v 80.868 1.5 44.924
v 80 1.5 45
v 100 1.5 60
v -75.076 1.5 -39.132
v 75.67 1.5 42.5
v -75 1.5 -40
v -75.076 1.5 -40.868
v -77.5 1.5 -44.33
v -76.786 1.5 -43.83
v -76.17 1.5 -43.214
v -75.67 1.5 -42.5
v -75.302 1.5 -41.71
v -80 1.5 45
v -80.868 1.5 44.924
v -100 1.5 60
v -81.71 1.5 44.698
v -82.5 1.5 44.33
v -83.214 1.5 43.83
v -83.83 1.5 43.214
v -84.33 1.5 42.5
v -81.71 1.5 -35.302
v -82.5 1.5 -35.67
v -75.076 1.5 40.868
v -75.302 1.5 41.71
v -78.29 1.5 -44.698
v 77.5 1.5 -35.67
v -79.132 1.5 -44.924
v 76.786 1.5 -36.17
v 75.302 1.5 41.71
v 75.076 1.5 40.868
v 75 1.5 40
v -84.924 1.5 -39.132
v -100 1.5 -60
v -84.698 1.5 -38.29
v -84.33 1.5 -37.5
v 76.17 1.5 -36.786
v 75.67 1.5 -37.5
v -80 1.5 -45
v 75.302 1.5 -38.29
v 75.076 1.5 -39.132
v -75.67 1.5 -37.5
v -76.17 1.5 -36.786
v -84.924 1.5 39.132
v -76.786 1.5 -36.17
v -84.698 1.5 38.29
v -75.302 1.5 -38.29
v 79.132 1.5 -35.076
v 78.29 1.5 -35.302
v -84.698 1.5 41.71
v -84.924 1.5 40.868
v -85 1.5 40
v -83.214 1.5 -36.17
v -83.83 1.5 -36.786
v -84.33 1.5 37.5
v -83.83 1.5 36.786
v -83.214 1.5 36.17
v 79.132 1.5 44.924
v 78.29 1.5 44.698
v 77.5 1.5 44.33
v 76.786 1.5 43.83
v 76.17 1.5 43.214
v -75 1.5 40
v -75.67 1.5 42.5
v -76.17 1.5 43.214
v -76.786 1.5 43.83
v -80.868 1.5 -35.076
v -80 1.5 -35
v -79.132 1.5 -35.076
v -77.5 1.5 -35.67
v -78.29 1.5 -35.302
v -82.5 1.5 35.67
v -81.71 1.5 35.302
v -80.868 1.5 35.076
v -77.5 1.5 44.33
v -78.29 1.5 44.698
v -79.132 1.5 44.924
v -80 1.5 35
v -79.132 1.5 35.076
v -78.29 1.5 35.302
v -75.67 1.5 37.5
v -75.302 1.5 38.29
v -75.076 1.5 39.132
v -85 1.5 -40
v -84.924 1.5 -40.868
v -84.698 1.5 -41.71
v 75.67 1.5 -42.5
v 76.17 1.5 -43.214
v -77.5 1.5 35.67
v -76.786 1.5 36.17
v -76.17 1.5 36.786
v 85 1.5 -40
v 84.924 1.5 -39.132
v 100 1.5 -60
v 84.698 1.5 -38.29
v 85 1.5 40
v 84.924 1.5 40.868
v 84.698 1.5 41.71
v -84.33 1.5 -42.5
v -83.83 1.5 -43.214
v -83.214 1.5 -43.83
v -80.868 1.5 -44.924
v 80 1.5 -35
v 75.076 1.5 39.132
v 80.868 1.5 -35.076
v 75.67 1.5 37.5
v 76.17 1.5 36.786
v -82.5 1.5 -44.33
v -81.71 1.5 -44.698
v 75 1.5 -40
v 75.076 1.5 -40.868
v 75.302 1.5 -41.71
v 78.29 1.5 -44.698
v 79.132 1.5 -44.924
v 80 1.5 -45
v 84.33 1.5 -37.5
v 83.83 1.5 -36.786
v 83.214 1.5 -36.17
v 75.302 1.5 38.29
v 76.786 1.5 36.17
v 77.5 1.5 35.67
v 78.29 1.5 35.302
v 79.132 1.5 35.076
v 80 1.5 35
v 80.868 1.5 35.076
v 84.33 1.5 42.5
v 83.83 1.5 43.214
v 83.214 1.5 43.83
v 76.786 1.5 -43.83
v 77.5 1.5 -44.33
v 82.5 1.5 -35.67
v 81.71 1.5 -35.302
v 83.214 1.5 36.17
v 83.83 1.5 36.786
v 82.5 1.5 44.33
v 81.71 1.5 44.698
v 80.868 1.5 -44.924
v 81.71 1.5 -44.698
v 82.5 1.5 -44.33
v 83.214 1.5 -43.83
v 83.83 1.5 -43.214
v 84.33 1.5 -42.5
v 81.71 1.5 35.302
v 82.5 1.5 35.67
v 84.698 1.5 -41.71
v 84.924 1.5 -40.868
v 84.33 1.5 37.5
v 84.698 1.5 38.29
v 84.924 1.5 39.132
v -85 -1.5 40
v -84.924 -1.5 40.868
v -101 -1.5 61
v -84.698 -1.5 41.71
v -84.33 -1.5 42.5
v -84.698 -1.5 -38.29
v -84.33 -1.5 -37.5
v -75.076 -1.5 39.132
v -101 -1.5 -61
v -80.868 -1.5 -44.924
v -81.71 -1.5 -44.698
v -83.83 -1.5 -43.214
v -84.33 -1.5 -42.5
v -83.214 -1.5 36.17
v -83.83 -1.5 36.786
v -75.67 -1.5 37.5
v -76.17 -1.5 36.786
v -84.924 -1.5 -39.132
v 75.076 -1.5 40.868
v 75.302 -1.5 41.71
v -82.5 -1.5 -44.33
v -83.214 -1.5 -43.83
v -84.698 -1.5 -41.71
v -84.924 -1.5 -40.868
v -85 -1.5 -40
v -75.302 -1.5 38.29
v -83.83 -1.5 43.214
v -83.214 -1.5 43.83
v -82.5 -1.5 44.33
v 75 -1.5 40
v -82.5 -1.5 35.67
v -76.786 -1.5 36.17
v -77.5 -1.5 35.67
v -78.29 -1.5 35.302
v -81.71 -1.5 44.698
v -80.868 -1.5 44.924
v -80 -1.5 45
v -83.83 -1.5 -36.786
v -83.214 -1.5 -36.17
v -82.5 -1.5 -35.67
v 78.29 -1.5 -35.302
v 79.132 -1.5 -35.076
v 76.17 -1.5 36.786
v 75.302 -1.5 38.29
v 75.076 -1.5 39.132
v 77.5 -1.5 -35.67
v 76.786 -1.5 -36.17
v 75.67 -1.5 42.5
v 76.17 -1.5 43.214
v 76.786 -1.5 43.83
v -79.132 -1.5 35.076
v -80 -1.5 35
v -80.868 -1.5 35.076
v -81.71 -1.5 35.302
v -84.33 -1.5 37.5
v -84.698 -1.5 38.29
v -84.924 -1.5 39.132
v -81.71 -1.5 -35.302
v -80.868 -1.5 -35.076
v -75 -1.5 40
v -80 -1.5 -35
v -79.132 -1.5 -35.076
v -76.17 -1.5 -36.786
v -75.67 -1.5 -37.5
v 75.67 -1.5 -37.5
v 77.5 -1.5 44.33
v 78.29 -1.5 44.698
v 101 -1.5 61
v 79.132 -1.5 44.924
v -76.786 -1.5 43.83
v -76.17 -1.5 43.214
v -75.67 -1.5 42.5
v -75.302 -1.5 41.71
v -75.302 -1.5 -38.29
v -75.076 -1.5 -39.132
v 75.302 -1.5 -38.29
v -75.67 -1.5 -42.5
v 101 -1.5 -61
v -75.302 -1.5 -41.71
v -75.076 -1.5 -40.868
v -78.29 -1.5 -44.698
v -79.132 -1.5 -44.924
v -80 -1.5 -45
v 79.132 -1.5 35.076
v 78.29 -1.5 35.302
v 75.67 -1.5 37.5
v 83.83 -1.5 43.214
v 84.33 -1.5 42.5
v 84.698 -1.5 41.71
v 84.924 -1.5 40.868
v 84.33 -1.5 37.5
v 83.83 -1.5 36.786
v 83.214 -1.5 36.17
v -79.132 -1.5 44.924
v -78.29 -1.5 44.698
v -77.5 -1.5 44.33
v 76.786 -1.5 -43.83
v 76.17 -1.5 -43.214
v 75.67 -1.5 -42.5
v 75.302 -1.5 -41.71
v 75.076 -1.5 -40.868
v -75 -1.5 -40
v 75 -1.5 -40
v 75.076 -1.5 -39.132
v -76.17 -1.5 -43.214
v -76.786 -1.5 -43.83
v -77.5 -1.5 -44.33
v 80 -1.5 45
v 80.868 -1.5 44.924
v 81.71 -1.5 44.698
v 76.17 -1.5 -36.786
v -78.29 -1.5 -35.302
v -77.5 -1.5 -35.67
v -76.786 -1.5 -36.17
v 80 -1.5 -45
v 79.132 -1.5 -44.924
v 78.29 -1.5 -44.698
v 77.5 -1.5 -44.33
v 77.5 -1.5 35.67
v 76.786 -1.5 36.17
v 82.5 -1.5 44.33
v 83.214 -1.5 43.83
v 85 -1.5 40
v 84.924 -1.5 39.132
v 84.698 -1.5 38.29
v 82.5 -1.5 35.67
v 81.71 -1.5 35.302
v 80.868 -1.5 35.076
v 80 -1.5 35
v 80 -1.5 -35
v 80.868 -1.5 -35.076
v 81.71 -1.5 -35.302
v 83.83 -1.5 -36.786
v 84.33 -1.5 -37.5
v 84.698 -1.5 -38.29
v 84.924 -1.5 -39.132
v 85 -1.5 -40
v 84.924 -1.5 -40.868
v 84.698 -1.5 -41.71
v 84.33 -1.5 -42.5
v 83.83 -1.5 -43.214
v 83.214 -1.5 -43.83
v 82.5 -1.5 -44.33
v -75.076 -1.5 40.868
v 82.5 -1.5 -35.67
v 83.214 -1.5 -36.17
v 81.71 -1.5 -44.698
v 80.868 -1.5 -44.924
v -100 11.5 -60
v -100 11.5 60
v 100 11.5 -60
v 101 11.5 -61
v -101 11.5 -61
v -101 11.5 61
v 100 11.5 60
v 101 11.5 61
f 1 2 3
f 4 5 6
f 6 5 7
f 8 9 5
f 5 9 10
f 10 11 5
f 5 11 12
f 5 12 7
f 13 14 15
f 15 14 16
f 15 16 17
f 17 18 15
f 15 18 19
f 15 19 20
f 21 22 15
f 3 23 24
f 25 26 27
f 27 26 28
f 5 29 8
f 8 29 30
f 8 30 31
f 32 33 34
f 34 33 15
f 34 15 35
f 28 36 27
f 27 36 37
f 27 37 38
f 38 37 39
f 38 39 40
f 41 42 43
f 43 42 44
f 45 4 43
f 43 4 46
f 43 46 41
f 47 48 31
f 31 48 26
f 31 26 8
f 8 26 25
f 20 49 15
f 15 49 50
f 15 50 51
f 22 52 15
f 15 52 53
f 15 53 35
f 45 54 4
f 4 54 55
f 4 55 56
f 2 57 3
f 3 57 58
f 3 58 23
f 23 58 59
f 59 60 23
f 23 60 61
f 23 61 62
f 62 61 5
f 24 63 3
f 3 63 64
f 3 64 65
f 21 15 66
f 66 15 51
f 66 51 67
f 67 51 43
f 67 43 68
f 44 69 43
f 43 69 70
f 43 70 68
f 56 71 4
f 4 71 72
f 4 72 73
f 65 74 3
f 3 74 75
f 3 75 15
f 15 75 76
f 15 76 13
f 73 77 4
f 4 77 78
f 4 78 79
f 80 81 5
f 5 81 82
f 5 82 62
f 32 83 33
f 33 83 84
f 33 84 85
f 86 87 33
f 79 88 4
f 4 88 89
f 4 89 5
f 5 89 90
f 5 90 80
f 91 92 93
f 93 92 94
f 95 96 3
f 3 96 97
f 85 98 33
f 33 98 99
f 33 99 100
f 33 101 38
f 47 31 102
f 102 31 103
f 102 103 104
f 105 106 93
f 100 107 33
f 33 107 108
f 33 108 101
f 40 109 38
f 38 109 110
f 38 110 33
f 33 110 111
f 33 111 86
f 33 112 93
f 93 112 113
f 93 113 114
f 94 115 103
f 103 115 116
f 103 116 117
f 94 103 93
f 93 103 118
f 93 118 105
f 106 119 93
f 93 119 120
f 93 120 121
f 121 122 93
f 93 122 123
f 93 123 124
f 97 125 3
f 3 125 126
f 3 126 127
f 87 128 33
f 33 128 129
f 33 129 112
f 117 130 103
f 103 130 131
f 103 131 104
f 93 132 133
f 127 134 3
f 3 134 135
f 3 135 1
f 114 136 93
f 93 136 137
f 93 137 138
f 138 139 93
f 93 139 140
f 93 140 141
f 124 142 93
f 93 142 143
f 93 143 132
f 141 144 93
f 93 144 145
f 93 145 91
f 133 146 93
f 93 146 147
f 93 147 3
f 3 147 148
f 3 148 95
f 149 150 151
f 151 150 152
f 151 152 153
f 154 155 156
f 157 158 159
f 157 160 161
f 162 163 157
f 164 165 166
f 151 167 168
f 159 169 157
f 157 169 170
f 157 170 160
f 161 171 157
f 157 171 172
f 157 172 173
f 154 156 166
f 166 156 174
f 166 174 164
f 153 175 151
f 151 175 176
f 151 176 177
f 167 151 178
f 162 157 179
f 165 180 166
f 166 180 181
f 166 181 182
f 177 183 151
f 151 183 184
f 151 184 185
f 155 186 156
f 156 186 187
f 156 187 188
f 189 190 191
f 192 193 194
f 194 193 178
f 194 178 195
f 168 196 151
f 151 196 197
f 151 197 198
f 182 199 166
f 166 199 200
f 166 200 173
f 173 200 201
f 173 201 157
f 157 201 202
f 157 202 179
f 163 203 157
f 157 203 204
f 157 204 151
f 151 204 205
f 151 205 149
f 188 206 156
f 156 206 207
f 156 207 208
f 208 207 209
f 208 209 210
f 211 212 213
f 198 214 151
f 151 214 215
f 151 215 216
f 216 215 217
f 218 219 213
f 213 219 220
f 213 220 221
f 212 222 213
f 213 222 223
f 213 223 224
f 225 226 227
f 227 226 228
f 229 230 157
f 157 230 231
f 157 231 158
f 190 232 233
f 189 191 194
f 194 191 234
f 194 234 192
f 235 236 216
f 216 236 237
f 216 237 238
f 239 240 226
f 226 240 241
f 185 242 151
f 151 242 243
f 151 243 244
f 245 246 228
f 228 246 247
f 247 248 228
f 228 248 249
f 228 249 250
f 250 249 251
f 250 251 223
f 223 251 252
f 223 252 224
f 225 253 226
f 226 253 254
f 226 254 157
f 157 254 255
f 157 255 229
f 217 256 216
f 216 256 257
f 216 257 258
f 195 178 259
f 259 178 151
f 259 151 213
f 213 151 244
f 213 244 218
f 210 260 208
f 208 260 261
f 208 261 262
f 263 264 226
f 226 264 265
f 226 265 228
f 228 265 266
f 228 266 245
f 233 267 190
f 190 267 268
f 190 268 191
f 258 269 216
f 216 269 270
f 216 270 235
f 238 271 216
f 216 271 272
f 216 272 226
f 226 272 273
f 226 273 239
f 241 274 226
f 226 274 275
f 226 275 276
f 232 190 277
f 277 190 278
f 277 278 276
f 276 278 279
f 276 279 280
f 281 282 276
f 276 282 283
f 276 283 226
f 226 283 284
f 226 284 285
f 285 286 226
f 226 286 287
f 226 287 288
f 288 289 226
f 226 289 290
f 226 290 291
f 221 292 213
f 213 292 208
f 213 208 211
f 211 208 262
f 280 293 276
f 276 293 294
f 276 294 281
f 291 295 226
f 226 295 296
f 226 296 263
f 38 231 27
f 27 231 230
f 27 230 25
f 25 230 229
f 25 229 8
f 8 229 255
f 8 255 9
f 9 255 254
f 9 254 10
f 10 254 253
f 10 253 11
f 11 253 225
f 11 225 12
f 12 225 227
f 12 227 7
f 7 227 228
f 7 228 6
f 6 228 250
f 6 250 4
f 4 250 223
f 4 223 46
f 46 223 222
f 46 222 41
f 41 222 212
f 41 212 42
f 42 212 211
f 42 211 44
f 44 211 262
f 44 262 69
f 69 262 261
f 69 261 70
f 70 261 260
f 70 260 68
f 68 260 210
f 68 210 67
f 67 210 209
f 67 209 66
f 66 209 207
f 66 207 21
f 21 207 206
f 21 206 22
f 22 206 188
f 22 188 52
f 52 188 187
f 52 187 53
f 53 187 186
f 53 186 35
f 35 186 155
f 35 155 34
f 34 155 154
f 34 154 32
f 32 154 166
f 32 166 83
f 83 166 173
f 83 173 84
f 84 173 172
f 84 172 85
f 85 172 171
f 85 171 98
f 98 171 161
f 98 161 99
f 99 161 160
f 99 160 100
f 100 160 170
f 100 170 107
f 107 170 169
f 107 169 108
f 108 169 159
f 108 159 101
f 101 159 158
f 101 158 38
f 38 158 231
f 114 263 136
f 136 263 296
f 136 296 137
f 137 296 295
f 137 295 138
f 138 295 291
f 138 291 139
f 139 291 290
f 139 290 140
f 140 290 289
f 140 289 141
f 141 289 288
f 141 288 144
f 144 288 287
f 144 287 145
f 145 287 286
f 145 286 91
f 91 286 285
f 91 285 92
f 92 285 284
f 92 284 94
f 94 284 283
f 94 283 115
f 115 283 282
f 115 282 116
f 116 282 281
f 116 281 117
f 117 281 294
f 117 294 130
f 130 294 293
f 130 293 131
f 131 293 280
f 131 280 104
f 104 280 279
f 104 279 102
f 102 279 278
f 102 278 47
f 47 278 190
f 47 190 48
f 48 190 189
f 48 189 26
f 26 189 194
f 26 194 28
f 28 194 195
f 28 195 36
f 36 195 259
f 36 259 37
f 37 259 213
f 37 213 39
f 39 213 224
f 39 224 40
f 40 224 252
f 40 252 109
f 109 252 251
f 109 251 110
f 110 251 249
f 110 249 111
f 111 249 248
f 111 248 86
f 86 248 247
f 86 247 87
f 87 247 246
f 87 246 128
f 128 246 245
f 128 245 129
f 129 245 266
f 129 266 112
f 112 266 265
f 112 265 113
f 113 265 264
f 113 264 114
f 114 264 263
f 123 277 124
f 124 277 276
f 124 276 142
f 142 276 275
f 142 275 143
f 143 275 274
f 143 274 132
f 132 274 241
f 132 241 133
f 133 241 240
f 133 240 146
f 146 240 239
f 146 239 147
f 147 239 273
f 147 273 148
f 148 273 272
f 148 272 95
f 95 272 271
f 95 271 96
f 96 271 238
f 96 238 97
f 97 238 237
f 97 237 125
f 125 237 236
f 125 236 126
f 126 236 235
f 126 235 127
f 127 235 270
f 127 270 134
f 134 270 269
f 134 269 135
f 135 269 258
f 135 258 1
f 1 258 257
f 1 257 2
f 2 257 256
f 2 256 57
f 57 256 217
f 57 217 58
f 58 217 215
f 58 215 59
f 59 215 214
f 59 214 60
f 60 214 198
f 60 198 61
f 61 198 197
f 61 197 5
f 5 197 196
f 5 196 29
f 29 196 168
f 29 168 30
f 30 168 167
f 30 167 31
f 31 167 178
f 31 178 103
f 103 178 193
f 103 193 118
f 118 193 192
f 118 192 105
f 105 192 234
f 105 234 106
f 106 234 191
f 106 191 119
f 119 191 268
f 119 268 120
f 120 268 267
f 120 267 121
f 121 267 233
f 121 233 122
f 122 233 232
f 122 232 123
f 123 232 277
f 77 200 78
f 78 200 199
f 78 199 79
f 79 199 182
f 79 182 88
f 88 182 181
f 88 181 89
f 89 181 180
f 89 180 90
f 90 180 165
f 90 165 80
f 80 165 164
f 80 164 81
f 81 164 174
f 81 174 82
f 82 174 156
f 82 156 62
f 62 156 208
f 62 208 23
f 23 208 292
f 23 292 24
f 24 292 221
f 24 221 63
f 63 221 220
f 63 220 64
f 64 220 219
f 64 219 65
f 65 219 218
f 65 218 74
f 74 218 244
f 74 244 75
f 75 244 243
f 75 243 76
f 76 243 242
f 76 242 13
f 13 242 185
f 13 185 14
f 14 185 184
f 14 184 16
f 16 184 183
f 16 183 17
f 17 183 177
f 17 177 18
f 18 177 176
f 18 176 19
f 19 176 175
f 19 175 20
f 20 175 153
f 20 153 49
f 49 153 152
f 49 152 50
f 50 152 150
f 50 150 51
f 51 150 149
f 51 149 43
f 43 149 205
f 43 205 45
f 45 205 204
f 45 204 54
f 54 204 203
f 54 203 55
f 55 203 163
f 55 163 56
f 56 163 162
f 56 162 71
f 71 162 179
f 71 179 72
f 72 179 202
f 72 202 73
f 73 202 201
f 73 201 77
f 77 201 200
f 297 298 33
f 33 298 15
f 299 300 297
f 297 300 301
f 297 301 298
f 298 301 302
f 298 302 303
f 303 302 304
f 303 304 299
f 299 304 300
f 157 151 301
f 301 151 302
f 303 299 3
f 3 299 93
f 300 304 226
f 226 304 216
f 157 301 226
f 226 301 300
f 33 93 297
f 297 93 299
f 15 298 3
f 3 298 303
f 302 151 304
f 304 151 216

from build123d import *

# Parameters (mm, degrees)
SKETCH1_W           = 200
SKETCH1_H           = 120
SKETCH1_R           = 5
BOSS_EXTRUDE3_DEPTH = 1.5
SKETCH2_W           = 120
SKETCH2_H           = 13
BOSS_EXTRUDE4_DEPTH = 1
SKETCH3_W           = 202
SKETCH3_H           = 13
BOSS_EXTRUDE6_DEPTH = 1


with BuildPart() as part:
    # Sketch1 → Boss-Extrude3 (new, symmetric)
    with BuildSketch(Plane(origin=(0, 0, 0), x_dir=(1, 0, 0), z_dir=(0, 1, 0))):
        Rectangle(SKETCH1_W, SKETCH1_H)
        with Locations(Location((-80, 40, 0), (0, 0, 270))):
            Circle(SKETCH1_R, mode=Mode.SUBTRACT)
        with Locations(Location((80, 40, 0), (0, 0, 90))):
            Circle(SKETCH1_R, mode=Mode.SUBTRACT)
        with Locations(Location((80, -40, 0), (0, 0, 270))):
            Circle(SKETCH1_R, mode=Mode.SUBTRACT)
        with Locations(Location((-80, -40, 0), (0, 0, 90))):
            Circle(SKETCH1_R, mode=Mode.SUBTRACT)
    extrude(amount=BOSS_EXTRUDE3_DEPTH, both=True)

    # Sketch2 → Boss-Extrude4 (add)
    with BuildSketch(Plane.ZY.offset(100)):
        with Locations((0, 5)):
            Rectangle(SKETCH2_W, SKETCH2_H)
    boss_extrude4 = extrude(amount=BOSS_EXTRUDE4_DEPTH)

    # Mirror1: Boss-Extrude4 across plane
    add(boss_extrude4.mirror(Plane(origin=(0, 0, 0), x_dir=(0, 0, 1), z_dir=(1, 0, 0))))

    # Sketch3 → Boss-Extrude6 (add)
    with BuildSketch(Plane(origin=(0, 0, -60), x_dir=(-1, 0, 0), z_dir=(0, 0, -1))):
        with Locations((0, 5)):
            Rectangle(SKETCH3_W, SKETCH3_H)
    boss_extrude6 = extrude(amount=BOSS_EXTRUDE6_DEPTH)

    # Mirror2: Boss-Extrude6 across plane
    add(boss_extrude6.mirror(Plane.XY))


solid = part.part
